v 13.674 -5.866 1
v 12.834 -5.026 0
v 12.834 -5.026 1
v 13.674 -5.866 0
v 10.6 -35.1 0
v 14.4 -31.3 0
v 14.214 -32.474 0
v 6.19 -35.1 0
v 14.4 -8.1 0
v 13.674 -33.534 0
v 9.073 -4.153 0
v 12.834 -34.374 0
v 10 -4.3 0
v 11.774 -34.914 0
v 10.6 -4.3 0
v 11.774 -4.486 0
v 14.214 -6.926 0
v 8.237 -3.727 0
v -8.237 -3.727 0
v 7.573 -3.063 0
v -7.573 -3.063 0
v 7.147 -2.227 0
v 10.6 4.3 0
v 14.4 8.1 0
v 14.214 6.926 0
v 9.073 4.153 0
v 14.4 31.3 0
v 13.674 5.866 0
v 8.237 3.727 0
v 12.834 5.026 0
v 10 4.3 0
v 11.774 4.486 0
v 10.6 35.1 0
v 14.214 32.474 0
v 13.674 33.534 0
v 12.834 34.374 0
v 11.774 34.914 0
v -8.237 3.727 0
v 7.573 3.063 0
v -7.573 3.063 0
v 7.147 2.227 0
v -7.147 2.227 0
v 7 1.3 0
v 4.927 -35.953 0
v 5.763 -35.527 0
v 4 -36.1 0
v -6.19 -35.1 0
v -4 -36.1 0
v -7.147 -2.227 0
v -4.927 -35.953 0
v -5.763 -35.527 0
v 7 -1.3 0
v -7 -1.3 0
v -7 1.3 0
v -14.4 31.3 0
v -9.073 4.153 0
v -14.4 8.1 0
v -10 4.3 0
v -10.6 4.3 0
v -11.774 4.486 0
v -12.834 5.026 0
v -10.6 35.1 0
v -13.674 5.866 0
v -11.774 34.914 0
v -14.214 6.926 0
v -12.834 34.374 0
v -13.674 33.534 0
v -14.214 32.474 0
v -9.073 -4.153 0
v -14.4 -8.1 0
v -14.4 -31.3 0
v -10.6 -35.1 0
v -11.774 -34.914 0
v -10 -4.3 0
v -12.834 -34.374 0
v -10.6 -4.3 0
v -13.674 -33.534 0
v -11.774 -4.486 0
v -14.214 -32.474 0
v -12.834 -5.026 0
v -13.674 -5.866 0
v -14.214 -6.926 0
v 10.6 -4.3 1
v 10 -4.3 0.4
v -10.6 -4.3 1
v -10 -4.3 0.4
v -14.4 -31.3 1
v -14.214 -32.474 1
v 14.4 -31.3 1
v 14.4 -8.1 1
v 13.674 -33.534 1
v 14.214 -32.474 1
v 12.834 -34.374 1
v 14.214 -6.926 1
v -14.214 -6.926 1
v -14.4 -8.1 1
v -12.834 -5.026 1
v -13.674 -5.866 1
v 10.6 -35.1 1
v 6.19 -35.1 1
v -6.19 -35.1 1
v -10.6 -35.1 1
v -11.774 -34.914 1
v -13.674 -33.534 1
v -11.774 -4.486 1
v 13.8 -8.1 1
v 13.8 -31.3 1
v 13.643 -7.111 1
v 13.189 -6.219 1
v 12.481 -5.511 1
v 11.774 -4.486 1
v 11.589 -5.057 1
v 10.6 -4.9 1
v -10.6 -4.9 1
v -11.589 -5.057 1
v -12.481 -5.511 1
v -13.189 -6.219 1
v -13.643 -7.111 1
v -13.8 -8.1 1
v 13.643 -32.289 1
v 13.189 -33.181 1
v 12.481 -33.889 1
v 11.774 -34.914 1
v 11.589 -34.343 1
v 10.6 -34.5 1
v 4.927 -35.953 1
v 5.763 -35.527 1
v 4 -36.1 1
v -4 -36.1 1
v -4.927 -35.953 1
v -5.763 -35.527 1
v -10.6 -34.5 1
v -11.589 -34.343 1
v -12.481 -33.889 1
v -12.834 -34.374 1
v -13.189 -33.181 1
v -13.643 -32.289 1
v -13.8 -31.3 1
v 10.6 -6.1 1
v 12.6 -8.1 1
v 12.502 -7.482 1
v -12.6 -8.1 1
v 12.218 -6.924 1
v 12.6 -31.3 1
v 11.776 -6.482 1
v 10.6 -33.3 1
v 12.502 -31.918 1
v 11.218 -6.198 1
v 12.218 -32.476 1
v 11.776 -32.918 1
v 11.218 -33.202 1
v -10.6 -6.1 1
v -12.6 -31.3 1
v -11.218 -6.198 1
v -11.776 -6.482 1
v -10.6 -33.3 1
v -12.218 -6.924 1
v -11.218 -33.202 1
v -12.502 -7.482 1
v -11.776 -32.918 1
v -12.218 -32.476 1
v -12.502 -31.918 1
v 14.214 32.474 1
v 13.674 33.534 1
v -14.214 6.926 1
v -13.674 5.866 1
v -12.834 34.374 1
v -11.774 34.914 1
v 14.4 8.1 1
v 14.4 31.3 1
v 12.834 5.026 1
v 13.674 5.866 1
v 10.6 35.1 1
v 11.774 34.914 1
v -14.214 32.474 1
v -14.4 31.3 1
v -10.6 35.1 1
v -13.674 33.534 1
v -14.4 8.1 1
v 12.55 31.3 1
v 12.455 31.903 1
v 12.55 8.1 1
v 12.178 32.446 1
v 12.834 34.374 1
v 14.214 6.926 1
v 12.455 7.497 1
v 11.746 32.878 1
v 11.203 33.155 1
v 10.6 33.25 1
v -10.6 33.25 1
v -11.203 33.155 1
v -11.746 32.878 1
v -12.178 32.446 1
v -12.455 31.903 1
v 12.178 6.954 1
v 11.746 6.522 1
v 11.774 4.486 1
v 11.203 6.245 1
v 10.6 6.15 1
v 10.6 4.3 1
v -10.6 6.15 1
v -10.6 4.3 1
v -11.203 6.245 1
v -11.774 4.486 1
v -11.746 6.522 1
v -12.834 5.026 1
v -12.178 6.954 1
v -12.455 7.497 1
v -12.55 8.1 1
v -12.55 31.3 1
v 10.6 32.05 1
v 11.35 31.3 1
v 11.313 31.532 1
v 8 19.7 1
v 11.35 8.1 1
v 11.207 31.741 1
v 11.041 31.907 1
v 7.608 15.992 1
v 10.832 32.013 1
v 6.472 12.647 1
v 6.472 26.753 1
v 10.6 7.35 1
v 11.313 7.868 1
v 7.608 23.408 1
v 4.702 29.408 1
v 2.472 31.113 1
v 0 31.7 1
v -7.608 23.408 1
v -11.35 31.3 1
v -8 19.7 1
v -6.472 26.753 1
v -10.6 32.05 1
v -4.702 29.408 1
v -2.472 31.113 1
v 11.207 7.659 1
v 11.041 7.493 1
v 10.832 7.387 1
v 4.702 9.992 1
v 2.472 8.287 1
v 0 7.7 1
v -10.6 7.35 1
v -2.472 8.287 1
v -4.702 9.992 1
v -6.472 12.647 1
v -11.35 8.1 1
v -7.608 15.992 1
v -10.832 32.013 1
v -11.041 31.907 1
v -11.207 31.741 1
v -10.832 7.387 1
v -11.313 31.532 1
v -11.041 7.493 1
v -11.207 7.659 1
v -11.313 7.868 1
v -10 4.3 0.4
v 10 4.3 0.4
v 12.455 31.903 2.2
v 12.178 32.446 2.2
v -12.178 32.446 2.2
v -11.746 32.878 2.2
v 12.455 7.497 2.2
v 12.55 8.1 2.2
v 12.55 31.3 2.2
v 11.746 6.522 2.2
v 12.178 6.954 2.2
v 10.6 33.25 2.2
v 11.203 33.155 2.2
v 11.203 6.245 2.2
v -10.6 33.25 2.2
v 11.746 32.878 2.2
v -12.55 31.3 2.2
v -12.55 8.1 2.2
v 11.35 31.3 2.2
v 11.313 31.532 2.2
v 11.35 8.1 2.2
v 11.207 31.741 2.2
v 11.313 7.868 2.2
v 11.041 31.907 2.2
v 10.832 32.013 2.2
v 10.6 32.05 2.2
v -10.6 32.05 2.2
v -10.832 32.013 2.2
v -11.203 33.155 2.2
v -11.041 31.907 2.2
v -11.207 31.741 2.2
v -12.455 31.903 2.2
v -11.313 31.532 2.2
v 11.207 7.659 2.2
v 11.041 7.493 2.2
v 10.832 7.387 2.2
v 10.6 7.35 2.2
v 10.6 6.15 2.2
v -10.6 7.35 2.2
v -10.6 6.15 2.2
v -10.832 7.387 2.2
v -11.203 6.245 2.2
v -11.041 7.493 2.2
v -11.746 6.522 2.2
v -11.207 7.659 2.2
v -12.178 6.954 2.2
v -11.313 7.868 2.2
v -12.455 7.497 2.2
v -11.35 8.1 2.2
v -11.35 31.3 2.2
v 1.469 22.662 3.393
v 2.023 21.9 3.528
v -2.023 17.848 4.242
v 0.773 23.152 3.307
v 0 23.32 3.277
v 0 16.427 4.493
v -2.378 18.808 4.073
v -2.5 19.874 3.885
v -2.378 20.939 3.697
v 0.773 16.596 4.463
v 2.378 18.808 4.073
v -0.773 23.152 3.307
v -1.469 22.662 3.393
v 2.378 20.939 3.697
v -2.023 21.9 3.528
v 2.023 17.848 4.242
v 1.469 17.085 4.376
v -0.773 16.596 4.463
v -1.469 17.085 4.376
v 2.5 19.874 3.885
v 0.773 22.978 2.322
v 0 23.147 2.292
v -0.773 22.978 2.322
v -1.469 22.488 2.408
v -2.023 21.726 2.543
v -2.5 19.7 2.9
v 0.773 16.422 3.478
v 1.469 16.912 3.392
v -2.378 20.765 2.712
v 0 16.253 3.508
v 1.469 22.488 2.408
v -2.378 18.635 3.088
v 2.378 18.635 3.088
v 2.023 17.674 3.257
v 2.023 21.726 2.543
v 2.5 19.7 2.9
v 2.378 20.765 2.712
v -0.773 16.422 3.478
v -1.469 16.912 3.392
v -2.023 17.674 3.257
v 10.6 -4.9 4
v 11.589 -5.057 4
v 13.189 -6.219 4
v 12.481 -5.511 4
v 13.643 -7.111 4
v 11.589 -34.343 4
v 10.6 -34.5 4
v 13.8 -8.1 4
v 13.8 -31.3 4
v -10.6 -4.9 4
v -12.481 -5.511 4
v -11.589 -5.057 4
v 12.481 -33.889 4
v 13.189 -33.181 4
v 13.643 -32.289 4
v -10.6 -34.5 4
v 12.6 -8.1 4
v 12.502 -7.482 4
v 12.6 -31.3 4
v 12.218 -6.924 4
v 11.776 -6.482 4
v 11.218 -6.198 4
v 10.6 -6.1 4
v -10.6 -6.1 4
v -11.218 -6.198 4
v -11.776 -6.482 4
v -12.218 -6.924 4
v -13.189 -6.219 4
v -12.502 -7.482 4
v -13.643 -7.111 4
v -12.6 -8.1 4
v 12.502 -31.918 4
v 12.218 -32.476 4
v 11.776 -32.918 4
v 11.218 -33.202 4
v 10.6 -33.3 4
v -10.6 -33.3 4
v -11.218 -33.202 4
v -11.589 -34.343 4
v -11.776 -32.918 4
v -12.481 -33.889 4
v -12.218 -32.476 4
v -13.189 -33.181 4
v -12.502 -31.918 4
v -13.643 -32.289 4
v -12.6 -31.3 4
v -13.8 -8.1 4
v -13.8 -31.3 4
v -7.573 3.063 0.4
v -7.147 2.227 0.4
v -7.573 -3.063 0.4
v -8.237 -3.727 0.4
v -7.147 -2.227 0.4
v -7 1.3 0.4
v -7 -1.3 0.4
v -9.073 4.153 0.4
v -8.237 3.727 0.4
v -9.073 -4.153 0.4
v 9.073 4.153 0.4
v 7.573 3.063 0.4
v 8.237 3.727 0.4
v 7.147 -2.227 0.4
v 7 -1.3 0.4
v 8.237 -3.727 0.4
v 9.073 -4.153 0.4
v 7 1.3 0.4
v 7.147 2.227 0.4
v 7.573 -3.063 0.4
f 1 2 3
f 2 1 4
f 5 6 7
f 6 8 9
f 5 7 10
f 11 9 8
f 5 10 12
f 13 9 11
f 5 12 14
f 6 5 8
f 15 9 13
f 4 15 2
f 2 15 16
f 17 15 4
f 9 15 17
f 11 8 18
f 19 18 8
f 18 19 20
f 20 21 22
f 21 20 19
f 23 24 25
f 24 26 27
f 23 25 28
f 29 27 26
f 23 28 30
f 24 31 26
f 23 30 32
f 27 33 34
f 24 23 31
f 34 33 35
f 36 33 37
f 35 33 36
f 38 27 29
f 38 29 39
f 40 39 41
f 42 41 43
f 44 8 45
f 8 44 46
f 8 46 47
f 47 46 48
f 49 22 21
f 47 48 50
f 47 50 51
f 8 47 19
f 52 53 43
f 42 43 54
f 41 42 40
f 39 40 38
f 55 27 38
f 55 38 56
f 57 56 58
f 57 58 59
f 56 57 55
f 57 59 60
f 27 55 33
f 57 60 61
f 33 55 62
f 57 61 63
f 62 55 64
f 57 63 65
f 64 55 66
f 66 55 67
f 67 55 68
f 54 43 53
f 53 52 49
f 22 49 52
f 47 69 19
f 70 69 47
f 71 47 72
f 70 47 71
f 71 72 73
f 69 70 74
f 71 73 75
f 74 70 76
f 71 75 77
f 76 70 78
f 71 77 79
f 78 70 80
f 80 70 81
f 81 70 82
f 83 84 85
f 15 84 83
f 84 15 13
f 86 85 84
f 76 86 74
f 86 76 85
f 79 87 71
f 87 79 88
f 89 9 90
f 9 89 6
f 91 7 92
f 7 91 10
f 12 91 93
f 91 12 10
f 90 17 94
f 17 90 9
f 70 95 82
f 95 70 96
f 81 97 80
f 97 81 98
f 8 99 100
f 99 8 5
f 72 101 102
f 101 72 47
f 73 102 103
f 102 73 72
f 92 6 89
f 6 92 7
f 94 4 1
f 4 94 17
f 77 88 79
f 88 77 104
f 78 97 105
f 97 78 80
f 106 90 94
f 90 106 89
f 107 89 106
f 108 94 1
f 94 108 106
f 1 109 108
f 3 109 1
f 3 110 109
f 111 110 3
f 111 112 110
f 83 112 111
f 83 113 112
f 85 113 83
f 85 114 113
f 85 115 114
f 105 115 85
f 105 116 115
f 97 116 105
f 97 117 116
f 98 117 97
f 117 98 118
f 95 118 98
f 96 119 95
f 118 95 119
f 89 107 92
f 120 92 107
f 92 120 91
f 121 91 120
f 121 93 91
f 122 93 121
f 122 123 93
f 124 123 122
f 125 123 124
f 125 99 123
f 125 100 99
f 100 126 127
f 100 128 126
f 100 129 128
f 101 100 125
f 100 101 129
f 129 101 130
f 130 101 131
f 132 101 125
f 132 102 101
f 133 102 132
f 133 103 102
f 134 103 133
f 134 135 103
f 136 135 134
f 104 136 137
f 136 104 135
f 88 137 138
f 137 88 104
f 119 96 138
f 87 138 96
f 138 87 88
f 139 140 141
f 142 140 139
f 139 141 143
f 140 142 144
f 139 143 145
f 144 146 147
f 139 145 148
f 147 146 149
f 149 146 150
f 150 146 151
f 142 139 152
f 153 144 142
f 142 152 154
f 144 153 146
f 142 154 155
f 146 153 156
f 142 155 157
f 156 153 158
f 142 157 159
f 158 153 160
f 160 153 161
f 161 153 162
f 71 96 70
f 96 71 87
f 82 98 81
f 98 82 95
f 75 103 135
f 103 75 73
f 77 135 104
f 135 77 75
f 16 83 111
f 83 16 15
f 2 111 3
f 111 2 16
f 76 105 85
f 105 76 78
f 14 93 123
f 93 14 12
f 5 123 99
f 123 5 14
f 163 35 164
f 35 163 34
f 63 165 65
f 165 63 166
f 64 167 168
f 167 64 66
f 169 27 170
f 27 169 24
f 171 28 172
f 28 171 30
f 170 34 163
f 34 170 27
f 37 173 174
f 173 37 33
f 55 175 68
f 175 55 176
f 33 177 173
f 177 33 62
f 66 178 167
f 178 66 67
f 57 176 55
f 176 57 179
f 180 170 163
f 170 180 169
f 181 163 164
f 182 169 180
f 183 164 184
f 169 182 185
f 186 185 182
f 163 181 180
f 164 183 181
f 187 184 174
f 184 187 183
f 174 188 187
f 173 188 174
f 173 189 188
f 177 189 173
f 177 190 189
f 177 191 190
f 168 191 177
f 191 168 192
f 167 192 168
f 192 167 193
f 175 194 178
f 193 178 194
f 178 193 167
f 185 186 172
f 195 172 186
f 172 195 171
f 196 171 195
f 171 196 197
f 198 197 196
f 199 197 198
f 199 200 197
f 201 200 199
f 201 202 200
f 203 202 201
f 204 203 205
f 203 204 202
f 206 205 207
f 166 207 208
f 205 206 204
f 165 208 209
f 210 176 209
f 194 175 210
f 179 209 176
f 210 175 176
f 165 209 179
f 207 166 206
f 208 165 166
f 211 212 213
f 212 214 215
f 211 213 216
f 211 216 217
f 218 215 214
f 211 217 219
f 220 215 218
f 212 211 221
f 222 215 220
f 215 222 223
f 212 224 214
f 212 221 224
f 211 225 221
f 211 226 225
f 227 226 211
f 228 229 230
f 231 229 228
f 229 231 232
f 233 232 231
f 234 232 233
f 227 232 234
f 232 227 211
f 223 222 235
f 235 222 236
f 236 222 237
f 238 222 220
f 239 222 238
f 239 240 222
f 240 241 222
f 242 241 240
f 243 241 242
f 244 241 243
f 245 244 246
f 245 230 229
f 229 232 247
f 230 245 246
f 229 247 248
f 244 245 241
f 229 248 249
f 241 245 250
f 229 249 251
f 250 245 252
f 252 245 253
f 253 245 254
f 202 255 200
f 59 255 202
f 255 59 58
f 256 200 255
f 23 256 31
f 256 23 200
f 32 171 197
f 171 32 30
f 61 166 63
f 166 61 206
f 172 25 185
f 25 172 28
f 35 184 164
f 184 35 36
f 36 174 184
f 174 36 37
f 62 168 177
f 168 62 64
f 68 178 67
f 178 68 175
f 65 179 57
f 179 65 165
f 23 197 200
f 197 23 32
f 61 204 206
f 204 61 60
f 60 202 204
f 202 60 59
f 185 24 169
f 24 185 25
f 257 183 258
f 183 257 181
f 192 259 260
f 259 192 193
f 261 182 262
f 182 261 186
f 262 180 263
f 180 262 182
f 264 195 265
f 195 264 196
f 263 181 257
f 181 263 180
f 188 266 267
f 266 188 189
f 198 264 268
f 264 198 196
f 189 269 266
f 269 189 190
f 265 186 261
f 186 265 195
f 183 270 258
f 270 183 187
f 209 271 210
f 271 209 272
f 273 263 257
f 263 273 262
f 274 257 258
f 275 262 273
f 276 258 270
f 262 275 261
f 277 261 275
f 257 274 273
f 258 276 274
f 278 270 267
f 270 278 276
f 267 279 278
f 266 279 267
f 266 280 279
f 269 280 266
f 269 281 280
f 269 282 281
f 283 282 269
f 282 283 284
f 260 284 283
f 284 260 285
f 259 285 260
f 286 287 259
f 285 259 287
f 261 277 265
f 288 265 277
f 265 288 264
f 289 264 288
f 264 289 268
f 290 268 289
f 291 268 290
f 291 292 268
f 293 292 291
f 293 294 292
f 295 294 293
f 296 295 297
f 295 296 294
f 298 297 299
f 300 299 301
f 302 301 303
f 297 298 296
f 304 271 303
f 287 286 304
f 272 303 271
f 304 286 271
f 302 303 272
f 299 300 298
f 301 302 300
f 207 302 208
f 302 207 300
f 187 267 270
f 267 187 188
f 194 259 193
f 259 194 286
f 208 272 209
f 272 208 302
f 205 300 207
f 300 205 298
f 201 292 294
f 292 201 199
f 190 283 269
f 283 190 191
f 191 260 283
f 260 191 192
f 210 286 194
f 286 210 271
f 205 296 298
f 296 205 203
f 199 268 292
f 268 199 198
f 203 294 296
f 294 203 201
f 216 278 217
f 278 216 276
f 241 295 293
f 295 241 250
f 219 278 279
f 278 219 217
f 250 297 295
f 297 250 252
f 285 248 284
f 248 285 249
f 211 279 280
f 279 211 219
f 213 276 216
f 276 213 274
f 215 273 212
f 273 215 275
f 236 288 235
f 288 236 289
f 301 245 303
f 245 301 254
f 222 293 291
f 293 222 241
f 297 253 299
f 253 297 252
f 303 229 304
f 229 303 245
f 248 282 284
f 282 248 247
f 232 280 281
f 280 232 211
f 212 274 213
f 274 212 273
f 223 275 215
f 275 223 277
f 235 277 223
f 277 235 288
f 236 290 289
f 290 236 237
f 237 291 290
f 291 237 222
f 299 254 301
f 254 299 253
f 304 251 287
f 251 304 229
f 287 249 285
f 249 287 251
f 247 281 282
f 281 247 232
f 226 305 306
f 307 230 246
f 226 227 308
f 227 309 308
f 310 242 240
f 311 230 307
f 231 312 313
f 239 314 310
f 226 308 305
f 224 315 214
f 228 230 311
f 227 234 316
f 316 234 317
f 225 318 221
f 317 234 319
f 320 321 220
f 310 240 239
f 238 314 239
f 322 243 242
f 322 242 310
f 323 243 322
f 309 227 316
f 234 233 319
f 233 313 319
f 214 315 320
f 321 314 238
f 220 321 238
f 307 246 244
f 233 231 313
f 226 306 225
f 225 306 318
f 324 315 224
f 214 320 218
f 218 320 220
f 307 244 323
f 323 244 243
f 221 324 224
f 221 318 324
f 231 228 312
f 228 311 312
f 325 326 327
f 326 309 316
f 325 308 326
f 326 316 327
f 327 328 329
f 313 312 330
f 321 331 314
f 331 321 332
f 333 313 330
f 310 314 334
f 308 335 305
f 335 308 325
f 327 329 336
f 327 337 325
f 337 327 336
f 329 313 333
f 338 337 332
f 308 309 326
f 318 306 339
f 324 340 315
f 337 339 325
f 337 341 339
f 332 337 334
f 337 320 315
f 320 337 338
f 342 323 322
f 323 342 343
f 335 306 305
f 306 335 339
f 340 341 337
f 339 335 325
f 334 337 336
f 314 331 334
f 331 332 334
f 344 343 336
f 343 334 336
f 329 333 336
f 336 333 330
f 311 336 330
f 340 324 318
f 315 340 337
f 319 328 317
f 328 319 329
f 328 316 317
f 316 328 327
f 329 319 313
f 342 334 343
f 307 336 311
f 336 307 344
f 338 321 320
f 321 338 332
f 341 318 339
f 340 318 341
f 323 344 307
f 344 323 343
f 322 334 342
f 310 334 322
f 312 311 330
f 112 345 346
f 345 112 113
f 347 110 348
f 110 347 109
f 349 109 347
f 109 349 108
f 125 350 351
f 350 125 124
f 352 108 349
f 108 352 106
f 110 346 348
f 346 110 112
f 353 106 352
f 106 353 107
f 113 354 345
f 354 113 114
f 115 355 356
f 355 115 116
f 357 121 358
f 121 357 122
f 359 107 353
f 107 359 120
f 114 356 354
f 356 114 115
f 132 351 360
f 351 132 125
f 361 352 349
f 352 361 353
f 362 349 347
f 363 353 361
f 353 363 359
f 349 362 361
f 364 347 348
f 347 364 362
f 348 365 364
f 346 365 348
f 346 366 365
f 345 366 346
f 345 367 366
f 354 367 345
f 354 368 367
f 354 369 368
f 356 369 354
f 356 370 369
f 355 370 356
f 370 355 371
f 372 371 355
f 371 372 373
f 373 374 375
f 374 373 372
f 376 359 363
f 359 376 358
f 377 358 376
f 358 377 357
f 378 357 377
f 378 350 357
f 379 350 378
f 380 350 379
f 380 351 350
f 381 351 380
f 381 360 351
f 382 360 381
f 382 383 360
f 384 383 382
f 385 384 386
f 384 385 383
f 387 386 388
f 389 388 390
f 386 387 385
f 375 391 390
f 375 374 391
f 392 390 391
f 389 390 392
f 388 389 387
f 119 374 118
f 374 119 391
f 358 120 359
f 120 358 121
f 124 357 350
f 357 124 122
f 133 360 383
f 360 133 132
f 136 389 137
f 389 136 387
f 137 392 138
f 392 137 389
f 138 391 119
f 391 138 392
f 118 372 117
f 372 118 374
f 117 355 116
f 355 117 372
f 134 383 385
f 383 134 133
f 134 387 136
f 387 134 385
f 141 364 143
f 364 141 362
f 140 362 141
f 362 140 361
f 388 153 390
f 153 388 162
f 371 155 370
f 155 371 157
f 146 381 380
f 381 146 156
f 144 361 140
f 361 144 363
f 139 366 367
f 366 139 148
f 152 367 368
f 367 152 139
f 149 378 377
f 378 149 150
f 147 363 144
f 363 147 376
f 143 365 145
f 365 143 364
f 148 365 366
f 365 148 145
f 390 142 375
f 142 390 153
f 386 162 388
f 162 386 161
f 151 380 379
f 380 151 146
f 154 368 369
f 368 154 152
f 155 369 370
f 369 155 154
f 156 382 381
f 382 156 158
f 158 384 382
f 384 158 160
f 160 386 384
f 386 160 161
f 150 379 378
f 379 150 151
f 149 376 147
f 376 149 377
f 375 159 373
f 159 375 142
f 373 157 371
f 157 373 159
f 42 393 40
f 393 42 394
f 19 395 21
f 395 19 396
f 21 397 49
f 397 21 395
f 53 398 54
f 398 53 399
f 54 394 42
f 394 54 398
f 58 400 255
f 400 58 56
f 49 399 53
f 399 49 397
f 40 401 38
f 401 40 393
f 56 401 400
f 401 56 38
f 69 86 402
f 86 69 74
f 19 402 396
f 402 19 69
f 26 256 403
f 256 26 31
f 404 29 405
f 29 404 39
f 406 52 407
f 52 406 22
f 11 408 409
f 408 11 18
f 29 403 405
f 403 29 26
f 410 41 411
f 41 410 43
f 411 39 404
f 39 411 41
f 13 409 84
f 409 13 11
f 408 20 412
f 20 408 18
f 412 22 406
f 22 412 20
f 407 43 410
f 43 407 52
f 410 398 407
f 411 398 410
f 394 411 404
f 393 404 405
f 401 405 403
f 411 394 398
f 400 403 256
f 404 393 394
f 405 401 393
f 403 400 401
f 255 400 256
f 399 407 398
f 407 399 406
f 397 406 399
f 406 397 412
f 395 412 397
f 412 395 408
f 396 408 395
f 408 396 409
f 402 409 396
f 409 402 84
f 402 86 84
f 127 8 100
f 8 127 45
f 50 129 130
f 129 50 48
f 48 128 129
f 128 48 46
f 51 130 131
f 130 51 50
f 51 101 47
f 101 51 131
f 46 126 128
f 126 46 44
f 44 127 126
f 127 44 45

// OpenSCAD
/*
Opal case by Brian Khuu 2019

Remixed from https://www.thingiverse.com/thing:1563872/files

*/

/*[opal Settings]*/

opal_stand_mm = 2;

// Height of the threaded part of the opal [mm]
opal_base_mm = 1;

// Height of the tip part of the opal [mm]
opal_top_height = 3;

// Diameter of the threaded part of the opal [mm]
opal_oval_width = 3;
opal_oval_length = 5;

// Quantity of opals in X-direction
width_number = 1;

// Quantity of opals in Y-direction (see lblText if changed)
length_number = 1;

// Distance between and at the edges of the opal holes in X-direction [mm]
widthDistance = 10;
// Distance between and at the edges of the opal holes in Y-direction [mm]
lengthDistance = 10;

// General inaccuracy for the opal holes. Reduce to get a tighter fit [mm]
inaccuracy = 1;

opalBaseDia_w_ina = opal_oval_width + inaccuracy;
opalBaseDia_l_ina = opal_oval_length + inaccuracy;

/*[Dimensions]*/

// Case interior fillet radius [mm]
interiorFillet = 2.0;

// Width of the hinge [mm]
hingeWidth = width_number * opalBaseDia_w_ina + (width_number+1) * widthDistance - 10;

/*[Walls]*/

// Horizontal wall (top and bottom) thickness [mm]
coverThickness = 1.0; 

// Vertical wall (side) thickness [mm]
sidewallWidth = 1.2; 

// Amount the lid protrudes into the case (larger value allows the case to close more securely) [mm]
lidInsetHeight = 1.2;

// Thickness of the hinge (it should be no more than a few layers thick keep it flexible) [mm]
hingeThickness = 0.4;

// hinge length multiplier (as a function of case height - longer hinges may be needed for less flexible plastics)
hingeLengthScale = 1.1;

// Width of the case in mm (interior dimension)
interiorWidth = width_number * opalBaseDia_w_ina + (width_number+1) * widthDistance + sidewallWidth;

// Length of the case in mm (interior dimension)
interiorLength = length_number * opalBaseDia_l_ina + (length_number+1) * lengthDistance + sidewallWidth;

// Height of the case in mm (interior dimension)
interiorHeight = opal_stand_mm + opal_top_height + 1;

/*[Details]*/

// Distance the top and bottom surfaces extend beyond the sides of the case (makes the case easier to open) [mm]
rimInset = 0.6; 

// Length of the opening tab on the lid of the case (optional - set to 0 to remove)
tabSize = 1; 

// Fillet radius used for hinge and tab
hingeFillet = 3;


/*[Printer Tolerances]*/

// Adjust the tightness of the closed case (larger value makes the case looser, negative value makes it tighter - try adjusting in 0.1mm increments)
lidInsetOffset = 0.1;

/*[hidden]*/

$fn = 20; // resolution

eps = 0.1;


module oval_stand(oval_w, oval_l, oval_base_depth, height, inaccuracy)
{
  // calc
  oval_w_ina = oval_w + inaccuracy;
  oval_l_ina = oval_l + inaccuracy;

  base_w_ina = oval_w*2;
  base_l_ina = oval_l*2;
  
  module ovalshape(w,l,h)
  {
    linear_extrude(h)
      resize(newsize=[w,l,1]) 
        circle(r=1);
  }
  
  difference()
  {
    hull()
    {
      ovalshape(base_w_ina*2, base_l_ina*2, 0.1);
      
      translate([0,0,height])
        rotate([-10,0,0])
          ovalshape(oval_w_ina, oval_l_ina, 1);
    }
    
    #translate([0,0,height])
      rotate([-10,0,0])
        ovalshape(oval_w_ina, oval_l_ina, oval_base_depth);
  }
}


module case()
{
  // minimal error checking
  hingeWidth = min(hingeWidth, interiorWidth);
  hingeThickness = min(hingeThickness, coverThickness);
  lidInsetHeight = min(lidInsetHeight, interiorHeight);

  baseLength = interiorLength + sidewallWidth*2;
  baseWidth = interiorWidth + sidewallWidth*2;
  baseRadius = interiorFillet + sidewallWidth;

  caseLength = baseLength + rimInset*2;
  caseWidth = baseWidth + rimInset*2;
  caseRadius = baseRadius + rimInset;

  hingeLength = hingeLengthScale * interiorHeight + coverThickness*2;
  centerY = (caseLength + hingeLength)/2;

  filletXOffset = hingeWidth/2 + hingeFillet;
  filletYOffset = hingeLength/2 - hingeFillet;


  module rrect(h, w, l, r) {
    r = min(r, min(w/2, l/2));
    w = max(w, eps);
    l = max(l, eps);
    h = max(h, eps);
    if (r <= 0) {
      translate([-w/2, -l/2,0]) {
        cube([w,l,h]);
      }
    } else {
      hull() {
        for (y = [-l/2+r, l/2-r]) {
          for (x = [-w/2+r, w/2-r]) {
            translate([x,y,0]) {
              cylinder(h=h, r=r, center=false);
            }
          }
        }
      }
    }
  }

  module rrectTube(h, ow, ol, or, t) {
    difference() {
      rrect(h=h, w=ow, l=ol, r=or);
      translate([0,0,-eps]) {
        rrect(h=h+eps*2, w=ow-t*2, l=ol-t*2, r=or-t);
      }
    }
  }

  union() 
  {
    // bottom surfaces
    for (i = [-centerY, centerY]) {
      translate([0,i,0]) {
        rrect(h=coverThickness, w=caseWidth, l=caseLength, r=caseRadius);
      }
    }

    translate([0,0,coverThickness-eps]) 
    {
      // base
      translate([0,centerY,0]) 
      {

        //lid  
        translate([0,0,0])
        rrectTube(h=lidInsetHeight+eps, ow=interiorWidth - lidInsetOffset, ol=interiorLength - lidInsetOffset, or=interiorFillet - lidInsetOffset/2, t=sidewallWidth);

        // opalcase
        difference() 
        {
            //rrect(h=opal_base_mm, w=baseWidth, l=baseLength, r=baseRadius);
            //#opals_dimples();
        } 
        oval_stand(opalBaseDia_w_ina,opalBaseDia_l_ina,opal_base_mm,2,inaccuracy);
      }

      translate([0,-centerY,0]) 
      {
        // lid   
        rrectTube(h=opal_top_height+eps, ow=baseWidth, ol=baseLength, or=baseRadius, t=sidewallWidth);
      }
    }

    // hinge
    if (hingeWidth > caseWidth - caseRadius*2) {
      translate([-hingeWidth/2,-centerY,0]) {
        cube([hingeWidth, centerY*2, hingeThickness]);
      }
    } else {
      difference() {
        translate([-hingeWidth/2 - hingeFillet,-centerY,0]) {
          cube([hingeWidth + hingeFillet*2, centerY*2, hingeThickness]);
        }
  
        // fillet hinge
        for (x = [-filletXOffset, filletXOffset]) {
          hull() {
            for (y = [-filletYOffset, filletYOffset]) {
              translate([x,y,-eps]) {
                cylinder(h=hingeThickness + eps*2, r=hingeFillet, center=false);
              }
            }
          }
        }
      }
    }

    // tab
    if (tabSize > 0) {
      hull() {
        for (x = [hingeFillet - hingeWidth/2, hingeWidth/2 - hingeFillet]) {
          translate([x,-caseLength - hingeLength/2 - tabSize + hingeFillet,0]) {
            cylinder(h=coverThickness, r=hingeFillet, center=false);
          }
        }
        translate([-hingeWidth/2,-centerY,0]) {
          cube([hingeWidth, eps, coverThickness]);
        }
      }
    }
  }


}


module opals_dimples()
{
    module ovalshape(w,l,h)
    {
      linear_extrude(h)
        resize(newsize=[w,l,1]) 
          circle(r=1);
    }

    translate([opalBaseDia_w_ina/2 - (width_number/2)*opalBaseDia_w_ina - ((width_number-1)/2)*widthDistance, opalBaseDia_l_ina/2 - (length_number/2)*opalBaseDia_l_ina - ((length_number-1)/2)*lengthDistance, 0])
    {
    for(n = [0 : width_number - 1])
    {
        for(m = [0 : length_number - 1])
        {
            translate([n * (opalBaseDia_w_ina + widthDistance), m * (opalBaseDia_l_ina + lengthDistance),0])
            {
              ovalshape(opalBaseDia_w_ina, opalBaseDia_l_ina, opal_base_mm);
            }
        }    
    }
}
}


case();

// preview[view:north, tilt:top]
